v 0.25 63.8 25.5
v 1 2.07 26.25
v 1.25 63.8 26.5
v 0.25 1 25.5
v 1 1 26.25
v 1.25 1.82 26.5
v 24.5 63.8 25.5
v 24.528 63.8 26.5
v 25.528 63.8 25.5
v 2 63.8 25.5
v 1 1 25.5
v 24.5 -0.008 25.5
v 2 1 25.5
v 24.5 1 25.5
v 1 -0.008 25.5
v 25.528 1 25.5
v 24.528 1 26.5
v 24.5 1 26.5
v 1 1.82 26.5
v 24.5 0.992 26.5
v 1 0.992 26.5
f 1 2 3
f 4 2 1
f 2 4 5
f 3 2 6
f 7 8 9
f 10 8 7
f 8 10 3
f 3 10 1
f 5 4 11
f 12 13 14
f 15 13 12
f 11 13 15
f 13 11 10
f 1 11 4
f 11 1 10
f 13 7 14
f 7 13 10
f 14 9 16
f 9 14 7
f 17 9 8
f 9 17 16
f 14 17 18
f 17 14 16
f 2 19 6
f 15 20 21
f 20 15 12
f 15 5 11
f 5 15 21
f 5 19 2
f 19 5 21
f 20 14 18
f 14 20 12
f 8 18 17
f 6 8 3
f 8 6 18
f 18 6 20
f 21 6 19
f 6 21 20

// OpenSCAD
pcb_usb_depth=35.3;
pcb_usb_width=18.3;

pcb_usb_height=4;
box_width=pcb_usb_width+1.7+8-0.5;
box_depth=pcb_usb_depth+0.5+30-3;
box_bottom_tickness=pcb_usb_height+2;
box_height=box_width;
wall=2;

$fn=30;



module box() {
    // Top lid
        translate([wall, wall/2, box_height-wall])
        cube([box_width-3*wall+wall/2, box_depth, wall/2]);

        //translate([wall/2,wall/2,box_bottom_tickness])
        //#cube([box_width-2*wall, box_depth-2*wall, box_height]);
        
        // Left side
        translate([wall/8, wall/2, box_height-wall])
        difference() {
            rotate([0,45,0])
            cube([wall, box_depth, wall]);
            translate([0,-1,-wall])
            rotate([0,0,0])
            cube([2*wall, box_depth+5, wall]);
        }
 
        // right side
        translate([box_width-wall-wall*1.4, wall/2, box_height-wall])
        difference() {
            rotate([0,45,0])
            cube([wall, box_depth, wall]);
            translate([0,-1,-wall])
            rotate([0,0,0])
            cube([2*wall, box_depth+5, wall]);
        }

        // front
        translate([wall/2, 1.41*wall, box_height-wall])
        difference() {
            rotate([0,45,270])
            cube([wall, box_width-2*wall, wall]);
            translate([-wall,wall/2,-wall])
            rotate([0,0,270])
            cube([2*wall, box_width-2*wall+5, wall]);
        }
            
}
difference() {
    box();
    translate([0,-2,box_height-wall/2])
    cube([2*box_depth, 2*box_depth, 2*box_depth]);
}
